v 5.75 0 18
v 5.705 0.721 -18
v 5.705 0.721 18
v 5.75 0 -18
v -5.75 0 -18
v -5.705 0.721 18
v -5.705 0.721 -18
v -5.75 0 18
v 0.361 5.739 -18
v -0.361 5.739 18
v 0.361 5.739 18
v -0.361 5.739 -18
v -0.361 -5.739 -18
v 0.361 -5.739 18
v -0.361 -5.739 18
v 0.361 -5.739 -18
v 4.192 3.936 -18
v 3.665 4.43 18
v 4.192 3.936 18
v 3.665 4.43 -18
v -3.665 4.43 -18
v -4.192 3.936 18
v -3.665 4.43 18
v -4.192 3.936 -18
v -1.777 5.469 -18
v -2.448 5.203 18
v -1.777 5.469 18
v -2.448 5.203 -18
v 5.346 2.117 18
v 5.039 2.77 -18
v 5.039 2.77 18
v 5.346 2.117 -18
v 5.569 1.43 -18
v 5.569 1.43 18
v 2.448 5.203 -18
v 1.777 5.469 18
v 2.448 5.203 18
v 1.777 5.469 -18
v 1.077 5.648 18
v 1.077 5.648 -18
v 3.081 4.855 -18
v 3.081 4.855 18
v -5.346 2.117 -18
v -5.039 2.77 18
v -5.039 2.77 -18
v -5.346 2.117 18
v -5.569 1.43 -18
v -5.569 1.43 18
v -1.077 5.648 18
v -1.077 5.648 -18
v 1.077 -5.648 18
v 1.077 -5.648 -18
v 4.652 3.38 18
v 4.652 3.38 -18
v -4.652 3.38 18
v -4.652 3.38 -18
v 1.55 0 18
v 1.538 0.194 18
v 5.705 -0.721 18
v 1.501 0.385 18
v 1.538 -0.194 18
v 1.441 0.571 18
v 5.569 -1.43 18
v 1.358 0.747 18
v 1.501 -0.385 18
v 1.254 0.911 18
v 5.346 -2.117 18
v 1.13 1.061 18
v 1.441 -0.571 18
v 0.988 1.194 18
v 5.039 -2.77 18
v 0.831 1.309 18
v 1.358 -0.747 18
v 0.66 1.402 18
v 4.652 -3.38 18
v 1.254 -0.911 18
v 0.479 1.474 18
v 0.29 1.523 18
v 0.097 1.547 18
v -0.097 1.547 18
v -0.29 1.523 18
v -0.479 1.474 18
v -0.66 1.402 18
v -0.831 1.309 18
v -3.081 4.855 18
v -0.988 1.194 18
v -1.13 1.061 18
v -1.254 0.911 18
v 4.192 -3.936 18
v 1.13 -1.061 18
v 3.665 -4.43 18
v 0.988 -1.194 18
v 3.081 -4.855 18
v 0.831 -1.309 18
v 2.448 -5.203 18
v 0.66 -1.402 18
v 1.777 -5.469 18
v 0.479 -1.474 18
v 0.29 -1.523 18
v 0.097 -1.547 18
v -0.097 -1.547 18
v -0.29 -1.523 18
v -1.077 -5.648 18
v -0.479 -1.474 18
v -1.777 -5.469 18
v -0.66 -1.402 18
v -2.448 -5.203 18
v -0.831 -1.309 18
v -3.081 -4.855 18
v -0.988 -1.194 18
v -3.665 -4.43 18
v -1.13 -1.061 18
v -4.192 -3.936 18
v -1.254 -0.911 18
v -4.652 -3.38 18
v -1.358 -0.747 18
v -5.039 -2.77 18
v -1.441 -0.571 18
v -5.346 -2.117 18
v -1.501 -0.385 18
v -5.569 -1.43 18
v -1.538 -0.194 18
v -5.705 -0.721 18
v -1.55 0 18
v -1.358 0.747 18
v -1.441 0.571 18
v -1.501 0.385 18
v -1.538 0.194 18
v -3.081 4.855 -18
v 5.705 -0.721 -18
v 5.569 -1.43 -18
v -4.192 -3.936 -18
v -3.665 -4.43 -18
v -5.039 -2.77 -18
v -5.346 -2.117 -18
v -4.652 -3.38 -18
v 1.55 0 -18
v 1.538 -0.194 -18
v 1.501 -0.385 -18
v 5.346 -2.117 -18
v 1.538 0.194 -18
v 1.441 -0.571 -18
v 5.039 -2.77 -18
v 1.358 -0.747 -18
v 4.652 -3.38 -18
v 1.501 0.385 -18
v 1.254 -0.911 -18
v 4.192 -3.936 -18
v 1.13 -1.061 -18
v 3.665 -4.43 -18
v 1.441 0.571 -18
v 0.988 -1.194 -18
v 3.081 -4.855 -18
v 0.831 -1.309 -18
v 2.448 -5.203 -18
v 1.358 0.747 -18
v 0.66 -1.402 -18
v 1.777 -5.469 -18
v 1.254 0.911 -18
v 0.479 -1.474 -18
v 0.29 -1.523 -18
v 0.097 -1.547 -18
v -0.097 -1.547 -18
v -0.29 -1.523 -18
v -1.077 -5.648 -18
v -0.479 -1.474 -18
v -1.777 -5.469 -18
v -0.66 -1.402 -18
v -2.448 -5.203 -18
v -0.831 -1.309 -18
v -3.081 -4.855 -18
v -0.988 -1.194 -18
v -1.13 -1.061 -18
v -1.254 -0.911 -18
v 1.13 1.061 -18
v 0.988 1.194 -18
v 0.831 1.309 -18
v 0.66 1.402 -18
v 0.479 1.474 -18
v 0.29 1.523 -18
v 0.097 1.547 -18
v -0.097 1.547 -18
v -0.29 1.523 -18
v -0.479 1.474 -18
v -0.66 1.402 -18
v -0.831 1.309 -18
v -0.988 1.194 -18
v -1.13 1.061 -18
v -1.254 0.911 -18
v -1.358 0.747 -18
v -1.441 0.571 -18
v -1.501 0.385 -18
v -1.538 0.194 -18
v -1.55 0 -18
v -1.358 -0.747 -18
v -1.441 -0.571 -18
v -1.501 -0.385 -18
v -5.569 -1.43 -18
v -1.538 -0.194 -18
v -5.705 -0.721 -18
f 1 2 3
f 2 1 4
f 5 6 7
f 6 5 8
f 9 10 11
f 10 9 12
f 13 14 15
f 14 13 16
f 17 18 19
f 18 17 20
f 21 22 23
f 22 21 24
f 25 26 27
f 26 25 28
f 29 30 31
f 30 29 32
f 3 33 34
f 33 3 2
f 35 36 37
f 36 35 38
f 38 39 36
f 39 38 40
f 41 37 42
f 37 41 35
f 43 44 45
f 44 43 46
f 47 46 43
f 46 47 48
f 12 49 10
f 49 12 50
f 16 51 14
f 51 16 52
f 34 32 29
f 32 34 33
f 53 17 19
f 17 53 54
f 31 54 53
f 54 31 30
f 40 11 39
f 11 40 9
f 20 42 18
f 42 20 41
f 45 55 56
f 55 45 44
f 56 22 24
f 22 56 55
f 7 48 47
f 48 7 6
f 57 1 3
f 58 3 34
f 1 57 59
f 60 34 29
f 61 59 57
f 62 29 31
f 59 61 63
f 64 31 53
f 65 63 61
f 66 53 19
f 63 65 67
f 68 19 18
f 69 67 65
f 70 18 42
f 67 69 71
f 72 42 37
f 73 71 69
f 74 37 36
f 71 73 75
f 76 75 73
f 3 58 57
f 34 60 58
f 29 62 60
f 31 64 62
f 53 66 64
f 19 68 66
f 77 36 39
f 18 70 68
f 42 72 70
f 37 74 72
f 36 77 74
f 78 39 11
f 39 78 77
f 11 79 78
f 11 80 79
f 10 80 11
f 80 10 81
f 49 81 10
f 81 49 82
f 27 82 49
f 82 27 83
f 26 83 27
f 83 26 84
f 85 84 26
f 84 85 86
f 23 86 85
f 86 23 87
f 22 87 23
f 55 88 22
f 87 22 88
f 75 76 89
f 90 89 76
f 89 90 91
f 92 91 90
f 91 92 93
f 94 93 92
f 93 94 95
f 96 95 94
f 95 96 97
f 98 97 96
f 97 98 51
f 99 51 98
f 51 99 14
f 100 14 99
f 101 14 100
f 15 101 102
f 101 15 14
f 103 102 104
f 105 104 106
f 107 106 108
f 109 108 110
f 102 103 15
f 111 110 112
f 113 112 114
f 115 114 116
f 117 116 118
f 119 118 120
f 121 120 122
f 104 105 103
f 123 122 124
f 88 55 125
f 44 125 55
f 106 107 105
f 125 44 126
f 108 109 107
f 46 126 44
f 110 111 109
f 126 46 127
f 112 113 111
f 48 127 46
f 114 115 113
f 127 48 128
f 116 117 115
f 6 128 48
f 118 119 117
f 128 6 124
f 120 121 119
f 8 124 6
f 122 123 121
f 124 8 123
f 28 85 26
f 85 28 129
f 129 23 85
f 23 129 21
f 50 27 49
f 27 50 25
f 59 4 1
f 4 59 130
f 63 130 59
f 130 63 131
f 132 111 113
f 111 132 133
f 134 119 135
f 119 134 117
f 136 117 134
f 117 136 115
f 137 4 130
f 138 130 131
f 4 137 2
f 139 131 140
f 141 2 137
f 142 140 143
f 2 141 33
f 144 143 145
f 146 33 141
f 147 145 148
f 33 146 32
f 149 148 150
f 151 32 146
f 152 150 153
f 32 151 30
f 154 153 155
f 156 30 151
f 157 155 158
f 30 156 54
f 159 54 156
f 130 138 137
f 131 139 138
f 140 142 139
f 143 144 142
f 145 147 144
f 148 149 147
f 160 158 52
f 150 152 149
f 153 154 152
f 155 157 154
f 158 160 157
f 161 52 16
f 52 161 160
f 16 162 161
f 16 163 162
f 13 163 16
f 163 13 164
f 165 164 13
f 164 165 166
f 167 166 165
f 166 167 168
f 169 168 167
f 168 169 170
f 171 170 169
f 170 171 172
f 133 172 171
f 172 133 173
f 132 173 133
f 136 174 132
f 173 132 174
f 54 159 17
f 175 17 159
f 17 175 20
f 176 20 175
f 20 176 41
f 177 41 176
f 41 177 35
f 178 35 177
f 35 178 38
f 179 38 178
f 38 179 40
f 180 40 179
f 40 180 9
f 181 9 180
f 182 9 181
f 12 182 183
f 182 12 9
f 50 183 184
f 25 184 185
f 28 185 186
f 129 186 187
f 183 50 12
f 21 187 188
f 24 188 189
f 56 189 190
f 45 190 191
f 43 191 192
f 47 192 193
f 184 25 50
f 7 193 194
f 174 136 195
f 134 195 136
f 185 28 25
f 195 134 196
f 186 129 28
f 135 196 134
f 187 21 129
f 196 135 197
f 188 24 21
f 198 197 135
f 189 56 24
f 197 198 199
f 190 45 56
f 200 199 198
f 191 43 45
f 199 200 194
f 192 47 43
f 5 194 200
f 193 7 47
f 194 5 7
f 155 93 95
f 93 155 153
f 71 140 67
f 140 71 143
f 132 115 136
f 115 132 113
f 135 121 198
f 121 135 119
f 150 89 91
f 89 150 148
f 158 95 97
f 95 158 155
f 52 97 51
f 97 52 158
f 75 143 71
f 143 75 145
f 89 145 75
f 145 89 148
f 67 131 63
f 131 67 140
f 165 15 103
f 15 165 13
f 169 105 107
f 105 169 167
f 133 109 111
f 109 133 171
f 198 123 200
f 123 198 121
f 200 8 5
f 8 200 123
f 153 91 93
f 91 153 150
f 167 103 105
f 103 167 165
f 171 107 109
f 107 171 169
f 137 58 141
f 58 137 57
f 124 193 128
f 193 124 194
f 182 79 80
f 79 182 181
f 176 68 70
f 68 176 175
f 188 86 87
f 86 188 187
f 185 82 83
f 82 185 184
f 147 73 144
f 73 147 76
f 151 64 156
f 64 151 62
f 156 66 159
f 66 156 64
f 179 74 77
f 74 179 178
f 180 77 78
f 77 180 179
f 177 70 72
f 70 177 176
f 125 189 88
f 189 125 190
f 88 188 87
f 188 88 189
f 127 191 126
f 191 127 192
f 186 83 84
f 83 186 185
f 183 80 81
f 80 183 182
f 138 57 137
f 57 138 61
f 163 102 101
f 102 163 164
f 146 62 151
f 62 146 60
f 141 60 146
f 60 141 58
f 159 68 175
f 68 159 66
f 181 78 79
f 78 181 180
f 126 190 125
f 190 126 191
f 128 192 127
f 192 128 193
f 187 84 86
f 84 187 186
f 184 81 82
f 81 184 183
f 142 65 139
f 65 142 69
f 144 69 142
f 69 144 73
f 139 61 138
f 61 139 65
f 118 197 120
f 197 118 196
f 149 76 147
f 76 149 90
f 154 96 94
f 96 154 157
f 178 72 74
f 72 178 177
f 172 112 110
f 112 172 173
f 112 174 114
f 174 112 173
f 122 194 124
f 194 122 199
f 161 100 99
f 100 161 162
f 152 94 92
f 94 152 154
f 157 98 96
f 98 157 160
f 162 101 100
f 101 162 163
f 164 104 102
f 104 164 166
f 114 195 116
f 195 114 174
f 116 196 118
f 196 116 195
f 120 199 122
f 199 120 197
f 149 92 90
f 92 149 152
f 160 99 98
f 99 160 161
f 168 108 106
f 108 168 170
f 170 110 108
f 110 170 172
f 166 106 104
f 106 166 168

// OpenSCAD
$fn = 50;


difference() {
	union() {
		translate(v = [0, 0, -18.0000000000]) {
			cylinder(h = 36, r = 5.7500000000);
		}
	}
	union() {
		translate(v = [0, 0, -100.0000000000]) {
			cylinder(h = 200, r = 1.5500000000);
		}
	}
}
